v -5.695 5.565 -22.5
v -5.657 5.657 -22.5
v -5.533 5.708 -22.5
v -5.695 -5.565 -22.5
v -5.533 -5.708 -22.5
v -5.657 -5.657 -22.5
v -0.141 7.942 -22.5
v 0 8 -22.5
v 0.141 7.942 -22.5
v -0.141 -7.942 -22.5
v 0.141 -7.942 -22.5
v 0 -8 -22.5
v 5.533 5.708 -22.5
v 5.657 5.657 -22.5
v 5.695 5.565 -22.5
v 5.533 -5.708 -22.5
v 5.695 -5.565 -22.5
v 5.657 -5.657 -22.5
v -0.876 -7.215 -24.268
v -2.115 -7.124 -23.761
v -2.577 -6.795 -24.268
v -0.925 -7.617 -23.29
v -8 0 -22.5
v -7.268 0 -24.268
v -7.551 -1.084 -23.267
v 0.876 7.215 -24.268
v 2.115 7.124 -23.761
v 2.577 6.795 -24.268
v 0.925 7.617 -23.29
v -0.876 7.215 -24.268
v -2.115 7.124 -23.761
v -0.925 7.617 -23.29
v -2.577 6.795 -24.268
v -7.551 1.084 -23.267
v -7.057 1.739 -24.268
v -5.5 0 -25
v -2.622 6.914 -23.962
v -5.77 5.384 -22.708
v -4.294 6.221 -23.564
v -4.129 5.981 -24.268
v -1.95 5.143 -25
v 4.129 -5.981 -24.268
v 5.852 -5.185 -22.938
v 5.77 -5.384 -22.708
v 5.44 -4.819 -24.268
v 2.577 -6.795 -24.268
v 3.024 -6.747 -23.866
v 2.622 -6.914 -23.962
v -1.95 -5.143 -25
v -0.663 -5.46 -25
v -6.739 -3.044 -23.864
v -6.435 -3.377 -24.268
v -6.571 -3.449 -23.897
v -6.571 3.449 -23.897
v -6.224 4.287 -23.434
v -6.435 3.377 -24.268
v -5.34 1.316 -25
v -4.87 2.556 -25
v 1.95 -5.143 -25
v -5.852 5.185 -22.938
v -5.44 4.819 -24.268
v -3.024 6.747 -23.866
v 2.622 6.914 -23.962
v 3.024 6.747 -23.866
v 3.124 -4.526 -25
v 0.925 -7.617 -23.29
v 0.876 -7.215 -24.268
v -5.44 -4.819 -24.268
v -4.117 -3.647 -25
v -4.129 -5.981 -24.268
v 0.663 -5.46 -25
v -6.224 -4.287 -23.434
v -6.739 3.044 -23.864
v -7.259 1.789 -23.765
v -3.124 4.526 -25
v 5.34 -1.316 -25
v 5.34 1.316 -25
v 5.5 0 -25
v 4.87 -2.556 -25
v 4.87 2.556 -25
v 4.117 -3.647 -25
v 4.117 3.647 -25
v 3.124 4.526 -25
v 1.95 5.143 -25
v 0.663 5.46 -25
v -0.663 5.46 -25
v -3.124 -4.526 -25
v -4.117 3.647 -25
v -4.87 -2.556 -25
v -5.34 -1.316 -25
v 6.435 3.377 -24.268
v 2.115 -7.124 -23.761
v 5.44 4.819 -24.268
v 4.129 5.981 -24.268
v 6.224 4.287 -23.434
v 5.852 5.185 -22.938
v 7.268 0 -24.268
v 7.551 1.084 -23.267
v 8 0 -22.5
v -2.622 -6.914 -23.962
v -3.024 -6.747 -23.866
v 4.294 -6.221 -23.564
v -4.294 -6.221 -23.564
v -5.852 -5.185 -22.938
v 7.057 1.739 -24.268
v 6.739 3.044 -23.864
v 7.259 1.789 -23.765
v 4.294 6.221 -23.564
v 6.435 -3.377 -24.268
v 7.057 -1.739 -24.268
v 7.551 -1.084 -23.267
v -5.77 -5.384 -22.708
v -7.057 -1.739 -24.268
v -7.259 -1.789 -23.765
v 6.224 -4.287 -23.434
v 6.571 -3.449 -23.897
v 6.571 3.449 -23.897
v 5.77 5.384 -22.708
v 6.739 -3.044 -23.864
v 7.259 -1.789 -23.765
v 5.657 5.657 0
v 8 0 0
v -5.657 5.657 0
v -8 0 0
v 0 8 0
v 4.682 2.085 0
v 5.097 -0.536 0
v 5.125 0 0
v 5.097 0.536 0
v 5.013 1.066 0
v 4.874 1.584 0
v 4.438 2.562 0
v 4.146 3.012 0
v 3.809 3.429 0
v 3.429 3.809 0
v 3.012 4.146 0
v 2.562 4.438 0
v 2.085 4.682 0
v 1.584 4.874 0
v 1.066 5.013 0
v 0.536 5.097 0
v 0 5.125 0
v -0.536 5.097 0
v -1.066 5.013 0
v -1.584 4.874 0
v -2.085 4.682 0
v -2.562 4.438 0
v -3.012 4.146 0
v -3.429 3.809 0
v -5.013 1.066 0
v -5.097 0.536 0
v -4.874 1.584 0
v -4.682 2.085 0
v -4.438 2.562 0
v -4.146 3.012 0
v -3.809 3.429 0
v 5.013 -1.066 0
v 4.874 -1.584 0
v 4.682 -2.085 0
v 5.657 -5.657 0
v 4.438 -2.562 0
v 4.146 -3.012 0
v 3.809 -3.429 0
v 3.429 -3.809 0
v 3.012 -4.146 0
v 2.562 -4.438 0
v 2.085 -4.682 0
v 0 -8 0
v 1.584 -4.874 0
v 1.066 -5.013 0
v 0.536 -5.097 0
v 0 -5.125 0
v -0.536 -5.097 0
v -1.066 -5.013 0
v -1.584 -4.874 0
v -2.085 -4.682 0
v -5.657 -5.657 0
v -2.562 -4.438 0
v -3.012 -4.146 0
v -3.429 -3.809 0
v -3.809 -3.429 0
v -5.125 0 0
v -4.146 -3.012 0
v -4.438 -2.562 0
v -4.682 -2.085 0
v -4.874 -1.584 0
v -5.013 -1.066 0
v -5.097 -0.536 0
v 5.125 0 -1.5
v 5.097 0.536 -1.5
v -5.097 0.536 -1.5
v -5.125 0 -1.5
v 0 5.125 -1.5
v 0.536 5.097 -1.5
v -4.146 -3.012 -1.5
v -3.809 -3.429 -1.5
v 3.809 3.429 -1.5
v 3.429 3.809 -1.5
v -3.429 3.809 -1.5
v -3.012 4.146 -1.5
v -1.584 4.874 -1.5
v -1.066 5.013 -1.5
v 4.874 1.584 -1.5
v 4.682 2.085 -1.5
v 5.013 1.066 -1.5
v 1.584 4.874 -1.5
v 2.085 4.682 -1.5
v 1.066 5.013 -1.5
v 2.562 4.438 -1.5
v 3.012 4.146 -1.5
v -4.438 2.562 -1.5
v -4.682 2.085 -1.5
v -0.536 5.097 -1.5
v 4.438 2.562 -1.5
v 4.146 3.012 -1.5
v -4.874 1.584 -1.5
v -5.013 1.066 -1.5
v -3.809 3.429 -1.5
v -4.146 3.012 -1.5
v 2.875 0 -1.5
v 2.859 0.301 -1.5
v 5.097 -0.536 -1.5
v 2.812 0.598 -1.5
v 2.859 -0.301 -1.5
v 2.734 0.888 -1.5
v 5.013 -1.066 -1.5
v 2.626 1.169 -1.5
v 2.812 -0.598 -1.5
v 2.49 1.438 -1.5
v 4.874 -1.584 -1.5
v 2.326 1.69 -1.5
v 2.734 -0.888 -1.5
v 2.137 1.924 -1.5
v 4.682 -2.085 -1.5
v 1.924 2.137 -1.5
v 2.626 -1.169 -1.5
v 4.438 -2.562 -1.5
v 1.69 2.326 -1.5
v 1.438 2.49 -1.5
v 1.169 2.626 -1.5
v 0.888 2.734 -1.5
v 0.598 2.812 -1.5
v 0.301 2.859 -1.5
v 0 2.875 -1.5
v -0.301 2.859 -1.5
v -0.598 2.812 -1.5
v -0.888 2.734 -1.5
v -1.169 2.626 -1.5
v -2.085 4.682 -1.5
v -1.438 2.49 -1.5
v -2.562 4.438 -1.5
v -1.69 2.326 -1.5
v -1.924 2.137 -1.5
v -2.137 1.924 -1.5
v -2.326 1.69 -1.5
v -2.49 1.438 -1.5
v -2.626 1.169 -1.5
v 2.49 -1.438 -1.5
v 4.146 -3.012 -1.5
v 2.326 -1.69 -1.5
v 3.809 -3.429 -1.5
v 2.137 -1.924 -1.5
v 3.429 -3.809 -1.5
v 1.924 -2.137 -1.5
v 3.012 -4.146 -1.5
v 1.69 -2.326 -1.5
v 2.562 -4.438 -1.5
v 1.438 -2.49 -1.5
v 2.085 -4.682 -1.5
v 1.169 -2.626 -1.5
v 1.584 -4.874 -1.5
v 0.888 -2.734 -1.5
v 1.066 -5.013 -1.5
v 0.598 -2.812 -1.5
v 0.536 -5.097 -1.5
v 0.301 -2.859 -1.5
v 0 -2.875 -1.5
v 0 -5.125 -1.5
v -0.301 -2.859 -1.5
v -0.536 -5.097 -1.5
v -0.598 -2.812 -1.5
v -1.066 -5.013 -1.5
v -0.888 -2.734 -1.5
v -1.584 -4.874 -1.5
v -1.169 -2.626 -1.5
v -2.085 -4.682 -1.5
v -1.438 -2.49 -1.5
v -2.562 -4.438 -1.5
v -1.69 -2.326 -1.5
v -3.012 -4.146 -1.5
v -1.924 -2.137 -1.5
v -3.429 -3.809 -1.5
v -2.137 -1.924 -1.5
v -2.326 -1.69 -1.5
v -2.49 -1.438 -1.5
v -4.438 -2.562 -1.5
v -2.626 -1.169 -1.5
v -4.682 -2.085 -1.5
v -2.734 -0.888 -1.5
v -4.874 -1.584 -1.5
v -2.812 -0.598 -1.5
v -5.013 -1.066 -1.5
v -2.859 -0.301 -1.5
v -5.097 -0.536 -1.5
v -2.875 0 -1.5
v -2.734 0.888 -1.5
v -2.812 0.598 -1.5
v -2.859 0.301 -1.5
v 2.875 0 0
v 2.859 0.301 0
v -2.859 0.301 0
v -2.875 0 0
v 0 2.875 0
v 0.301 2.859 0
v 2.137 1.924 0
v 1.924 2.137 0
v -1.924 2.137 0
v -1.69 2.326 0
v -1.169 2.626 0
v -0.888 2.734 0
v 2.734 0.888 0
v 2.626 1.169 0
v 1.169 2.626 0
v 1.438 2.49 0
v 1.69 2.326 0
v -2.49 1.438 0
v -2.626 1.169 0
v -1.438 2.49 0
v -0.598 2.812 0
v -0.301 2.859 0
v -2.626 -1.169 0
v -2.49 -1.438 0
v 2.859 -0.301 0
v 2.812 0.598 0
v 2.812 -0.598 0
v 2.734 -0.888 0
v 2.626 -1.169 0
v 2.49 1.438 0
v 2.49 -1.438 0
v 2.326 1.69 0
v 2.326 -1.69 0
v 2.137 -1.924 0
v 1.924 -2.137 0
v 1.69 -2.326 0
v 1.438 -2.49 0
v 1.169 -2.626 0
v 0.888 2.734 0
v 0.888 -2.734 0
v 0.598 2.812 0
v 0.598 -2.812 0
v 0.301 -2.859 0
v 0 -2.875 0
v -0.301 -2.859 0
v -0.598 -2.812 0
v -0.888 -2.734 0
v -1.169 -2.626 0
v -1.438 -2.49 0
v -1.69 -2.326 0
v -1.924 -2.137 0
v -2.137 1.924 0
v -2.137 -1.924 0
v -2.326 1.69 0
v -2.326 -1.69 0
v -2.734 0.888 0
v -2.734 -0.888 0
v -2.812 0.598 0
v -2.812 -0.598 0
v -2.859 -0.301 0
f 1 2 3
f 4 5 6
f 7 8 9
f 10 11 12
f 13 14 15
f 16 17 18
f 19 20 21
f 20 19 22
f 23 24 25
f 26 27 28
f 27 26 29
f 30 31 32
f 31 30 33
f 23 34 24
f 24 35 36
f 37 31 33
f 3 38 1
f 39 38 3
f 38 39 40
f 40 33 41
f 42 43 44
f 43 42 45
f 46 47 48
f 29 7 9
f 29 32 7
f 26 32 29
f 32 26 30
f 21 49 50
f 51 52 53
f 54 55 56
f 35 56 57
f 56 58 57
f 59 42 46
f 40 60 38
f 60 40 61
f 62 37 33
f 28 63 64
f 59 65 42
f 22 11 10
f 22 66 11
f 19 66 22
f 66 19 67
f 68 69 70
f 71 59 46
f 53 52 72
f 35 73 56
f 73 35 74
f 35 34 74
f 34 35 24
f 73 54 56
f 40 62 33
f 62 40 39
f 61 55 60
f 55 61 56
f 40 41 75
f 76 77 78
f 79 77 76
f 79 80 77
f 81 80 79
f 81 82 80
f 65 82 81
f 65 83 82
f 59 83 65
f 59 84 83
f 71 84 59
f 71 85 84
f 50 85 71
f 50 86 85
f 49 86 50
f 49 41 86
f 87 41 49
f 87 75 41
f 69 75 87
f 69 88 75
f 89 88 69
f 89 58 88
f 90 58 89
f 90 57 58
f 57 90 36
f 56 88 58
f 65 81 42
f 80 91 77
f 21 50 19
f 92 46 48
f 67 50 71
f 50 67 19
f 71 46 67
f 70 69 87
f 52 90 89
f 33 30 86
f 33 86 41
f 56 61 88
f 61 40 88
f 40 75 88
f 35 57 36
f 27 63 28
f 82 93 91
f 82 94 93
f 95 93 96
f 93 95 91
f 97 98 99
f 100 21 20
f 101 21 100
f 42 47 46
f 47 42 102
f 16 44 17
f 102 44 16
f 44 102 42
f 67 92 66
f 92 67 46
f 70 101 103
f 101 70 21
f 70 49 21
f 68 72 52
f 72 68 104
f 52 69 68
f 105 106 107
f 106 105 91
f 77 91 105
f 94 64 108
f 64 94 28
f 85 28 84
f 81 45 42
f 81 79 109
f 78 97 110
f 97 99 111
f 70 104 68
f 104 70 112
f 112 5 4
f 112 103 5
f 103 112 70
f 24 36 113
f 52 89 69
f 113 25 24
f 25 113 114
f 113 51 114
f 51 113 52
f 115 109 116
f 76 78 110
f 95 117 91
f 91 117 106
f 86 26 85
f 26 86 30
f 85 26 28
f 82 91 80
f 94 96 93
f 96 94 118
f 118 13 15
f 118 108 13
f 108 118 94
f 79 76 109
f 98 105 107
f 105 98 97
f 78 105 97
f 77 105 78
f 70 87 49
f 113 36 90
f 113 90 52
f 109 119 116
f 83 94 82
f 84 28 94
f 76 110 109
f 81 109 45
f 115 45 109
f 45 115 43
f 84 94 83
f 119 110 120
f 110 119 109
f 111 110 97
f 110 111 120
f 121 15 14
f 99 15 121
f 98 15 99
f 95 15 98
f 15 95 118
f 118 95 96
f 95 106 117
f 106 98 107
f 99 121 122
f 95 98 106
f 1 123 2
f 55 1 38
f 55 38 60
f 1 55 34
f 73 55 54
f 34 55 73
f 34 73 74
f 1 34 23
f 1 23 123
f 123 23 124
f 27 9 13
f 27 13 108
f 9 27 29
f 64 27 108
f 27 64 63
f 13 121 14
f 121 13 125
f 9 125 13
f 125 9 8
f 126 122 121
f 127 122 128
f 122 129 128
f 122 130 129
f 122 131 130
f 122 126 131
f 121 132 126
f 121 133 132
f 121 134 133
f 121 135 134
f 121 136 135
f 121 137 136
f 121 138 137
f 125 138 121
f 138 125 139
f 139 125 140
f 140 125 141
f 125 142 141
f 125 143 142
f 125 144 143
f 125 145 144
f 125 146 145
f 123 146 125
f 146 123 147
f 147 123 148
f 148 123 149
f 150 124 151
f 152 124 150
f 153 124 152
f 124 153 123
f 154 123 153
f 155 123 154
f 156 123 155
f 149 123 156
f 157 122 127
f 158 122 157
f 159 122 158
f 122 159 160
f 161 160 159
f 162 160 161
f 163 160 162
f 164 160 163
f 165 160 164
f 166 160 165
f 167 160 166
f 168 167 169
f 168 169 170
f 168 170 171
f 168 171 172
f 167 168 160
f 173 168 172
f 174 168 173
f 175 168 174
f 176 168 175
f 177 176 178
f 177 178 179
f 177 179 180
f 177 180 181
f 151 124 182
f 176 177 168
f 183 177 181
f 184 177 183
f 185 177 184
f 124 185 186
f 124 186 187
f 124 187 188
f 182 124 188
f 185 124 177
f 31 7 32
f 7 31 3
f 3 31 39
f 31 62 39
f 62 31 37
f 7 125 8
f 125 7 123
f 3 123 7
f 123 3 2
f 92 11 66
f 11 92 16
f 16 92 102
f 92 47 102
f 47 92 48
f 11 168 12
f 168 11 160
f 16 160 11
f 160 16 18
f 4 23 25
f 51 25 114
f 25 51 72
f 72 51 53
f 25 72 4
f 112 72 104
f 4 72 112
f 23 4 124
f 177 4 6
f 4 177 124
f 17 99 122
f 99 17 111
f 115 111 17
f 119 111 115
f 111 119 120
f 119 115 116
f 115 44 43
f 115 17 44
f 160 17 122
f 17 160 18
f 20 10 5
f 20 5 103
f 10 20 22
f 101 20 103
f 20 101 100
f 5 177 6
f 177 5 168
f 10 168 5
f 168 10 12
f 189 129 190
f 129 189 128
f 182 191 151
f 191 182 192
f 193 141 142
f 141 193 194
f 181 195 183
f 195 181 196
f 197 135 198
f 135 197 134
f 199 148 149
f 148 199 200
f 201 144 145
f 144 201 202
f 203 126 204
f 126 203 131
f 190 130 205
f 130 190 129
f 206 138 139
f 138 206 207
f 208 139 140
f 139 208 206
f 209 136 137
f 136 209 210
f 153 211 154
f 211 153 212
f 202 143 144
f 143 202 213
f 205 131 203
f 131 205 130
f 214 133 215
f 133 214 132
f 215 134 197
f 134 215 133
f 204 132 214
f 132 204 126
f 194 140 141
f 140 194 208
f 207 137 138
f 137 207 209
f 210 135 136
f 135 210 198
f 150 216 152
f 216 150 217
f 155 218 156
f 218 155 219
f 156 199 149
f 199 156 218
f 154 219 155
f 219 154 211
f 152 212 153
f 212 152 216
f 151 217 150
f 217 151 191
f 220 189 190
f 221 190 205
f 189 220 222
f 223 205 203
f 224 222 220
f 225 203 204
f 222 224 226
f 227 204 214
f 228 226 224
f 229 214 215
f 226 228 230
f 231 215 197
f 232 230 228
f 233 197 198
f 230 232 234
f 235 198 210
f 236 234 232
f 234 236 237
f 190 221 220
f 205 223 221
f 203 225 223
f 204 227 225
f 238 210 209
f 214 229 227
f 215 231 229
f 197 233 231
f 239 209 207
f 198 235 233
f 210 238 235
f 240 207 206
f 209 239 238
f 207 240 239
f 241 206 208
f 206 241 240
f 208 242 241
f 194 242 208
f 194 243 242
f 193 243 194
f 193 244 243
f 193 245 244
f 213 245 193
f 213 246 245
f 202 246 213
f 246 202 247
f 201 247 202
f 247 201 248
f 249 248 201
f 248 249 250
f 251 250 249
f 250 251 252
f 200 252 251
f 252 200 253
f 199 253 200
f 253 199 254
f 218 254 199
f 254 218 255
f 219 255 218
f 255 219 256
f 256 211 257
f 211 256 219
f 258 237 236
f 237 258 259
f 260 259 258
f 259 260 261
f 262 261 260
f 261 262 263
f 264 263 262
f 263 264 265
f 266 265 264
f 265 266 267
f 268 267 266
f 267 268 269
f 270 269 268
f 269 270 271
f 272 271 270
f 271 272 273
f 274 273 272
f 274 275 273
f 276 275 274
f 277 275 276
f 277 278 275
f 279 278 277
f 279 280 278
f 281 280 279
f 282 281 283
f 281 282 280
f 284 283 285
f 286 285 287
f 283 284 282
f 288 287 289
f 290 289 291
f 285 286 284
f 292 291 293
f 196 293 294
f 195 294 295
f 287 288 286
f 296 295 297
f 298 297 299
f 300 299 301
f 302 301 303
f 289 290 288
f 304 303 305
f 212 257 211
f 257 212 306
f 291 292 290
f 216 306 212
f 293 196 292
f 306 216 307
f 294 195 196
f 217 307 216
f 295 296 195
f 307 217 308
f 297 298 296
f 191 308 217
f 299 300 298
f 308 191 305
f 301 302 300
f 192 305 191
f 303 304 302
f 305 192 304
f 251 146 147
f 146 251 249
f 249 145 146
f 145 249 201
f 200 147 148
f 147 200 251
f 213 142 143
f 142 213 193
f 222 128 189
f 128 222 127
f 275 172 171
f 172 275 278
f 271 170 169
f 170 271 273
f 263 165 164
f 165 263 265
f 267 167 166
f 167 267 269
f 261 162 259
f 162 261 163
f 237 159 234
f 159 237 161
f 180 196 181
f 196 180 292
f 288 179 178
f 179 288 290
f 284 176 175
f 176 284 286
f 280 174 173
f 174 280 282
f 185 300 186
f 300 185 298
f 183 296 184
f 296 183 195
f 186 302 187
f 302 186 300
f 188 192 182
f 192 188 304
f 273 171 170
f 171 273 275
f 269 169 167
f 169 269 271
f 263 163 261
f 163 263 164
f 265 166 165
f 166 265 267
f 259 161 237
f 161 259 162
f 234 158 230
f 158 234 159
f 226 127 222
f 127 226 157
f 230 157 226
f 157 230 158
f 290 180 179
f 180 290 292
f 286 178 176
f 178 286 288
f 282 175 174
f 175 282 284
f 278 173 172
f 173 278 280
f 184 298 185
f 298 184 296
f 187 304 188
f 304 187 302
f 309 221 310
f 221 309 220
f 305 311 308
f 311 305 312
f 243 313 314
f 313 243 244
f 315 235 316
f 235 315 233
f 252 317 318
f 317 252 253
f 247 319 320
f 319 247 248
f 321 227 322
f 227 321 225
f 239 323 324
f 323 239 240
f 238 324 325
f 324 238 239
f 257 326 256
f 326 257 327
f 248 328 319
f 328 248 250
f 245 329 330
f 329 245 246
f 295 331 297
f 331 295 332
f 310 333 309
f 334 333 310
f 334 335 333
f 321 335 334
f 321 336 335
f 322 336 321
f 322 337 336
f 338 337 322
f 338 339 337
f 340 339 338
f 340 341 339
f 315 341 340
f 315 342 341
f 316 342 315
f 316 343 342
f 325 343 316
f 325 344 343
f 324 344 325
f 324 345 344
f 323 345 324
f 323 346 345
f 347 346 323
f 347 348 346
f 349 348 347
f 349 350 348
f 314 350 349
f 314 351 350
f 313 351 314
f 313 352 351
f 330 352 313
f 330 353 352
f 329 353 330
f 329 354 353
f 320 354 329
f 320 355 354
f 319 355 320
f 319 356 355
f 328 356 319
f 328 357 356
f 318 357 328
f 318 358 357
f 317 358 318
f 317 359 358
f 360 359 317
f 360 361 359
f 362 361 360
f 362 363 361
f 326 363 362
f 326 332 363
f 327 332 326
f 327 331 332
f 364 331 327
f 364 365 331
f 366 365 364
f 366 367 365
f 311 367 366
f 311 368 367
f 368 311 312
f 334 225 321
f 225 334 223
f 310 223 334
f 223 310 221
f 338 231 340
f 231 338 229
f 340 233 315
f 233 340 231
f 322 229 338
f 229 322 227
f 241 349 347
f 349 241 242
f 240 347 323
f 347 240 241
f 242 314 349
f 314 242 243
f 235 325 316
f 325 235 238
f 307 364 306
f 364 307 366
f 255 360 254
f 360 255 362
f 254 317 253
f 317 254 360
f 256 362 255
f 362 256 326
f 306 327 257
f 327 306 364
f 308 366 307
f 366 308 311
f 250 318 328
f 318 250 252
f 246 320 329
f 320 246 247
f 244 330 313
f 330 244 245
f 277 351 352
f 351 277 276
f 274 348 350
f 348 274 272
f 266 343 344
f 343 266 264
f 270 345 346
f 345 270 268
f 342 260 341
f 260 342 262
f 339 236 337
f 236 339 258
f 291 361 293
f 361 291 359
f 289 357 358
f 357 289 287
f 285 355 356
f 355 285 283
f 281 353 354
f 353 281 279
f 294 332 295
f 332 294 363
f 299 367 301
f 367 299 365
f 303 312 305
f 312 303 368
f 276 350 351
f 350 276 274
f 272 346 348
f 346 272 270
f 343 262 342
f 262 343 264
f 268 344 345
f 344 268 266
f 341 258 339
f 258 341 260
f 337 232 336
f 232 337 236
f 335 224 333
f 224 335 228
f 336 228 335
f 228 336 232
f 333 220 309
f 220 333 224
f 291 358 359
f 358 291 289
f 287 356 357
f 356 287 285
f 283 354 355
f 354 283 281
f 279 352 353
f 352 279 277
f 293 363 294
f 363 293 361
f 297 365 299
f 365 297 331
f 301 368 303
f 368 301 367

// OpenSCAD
include <BOSL/constants.scad>
use <BOSL/shapes.scad>
use <BOSL/transforms.scad>
use <BOSL/masks.scad>



diam=10;
heig=3/2; // bearing is 3 mm tall
head=20;
addl=5;
//40mm total height

odiam = diam*1.6;
wiggle = 0.25;


mirror([0,0,1]) tool();

module tool() {  
  difference(){
    color("green") cyl(d=odiam, h=head+addl, align=V_UP, $fn=8); // handle
    color("yellow") up(head+addl) fillet_cylinder_mask(r=(odiam/2), fillet=2.5); // handle cleanup
    color("purple") cyl(d=diam+wiggle, h=heig, align=V_UP, $fn=60); // bearing
  }//difference
    color("pink") cyl(d=6-wiggle, h=head, align=V_UP, $fn=60); // headroom
}
